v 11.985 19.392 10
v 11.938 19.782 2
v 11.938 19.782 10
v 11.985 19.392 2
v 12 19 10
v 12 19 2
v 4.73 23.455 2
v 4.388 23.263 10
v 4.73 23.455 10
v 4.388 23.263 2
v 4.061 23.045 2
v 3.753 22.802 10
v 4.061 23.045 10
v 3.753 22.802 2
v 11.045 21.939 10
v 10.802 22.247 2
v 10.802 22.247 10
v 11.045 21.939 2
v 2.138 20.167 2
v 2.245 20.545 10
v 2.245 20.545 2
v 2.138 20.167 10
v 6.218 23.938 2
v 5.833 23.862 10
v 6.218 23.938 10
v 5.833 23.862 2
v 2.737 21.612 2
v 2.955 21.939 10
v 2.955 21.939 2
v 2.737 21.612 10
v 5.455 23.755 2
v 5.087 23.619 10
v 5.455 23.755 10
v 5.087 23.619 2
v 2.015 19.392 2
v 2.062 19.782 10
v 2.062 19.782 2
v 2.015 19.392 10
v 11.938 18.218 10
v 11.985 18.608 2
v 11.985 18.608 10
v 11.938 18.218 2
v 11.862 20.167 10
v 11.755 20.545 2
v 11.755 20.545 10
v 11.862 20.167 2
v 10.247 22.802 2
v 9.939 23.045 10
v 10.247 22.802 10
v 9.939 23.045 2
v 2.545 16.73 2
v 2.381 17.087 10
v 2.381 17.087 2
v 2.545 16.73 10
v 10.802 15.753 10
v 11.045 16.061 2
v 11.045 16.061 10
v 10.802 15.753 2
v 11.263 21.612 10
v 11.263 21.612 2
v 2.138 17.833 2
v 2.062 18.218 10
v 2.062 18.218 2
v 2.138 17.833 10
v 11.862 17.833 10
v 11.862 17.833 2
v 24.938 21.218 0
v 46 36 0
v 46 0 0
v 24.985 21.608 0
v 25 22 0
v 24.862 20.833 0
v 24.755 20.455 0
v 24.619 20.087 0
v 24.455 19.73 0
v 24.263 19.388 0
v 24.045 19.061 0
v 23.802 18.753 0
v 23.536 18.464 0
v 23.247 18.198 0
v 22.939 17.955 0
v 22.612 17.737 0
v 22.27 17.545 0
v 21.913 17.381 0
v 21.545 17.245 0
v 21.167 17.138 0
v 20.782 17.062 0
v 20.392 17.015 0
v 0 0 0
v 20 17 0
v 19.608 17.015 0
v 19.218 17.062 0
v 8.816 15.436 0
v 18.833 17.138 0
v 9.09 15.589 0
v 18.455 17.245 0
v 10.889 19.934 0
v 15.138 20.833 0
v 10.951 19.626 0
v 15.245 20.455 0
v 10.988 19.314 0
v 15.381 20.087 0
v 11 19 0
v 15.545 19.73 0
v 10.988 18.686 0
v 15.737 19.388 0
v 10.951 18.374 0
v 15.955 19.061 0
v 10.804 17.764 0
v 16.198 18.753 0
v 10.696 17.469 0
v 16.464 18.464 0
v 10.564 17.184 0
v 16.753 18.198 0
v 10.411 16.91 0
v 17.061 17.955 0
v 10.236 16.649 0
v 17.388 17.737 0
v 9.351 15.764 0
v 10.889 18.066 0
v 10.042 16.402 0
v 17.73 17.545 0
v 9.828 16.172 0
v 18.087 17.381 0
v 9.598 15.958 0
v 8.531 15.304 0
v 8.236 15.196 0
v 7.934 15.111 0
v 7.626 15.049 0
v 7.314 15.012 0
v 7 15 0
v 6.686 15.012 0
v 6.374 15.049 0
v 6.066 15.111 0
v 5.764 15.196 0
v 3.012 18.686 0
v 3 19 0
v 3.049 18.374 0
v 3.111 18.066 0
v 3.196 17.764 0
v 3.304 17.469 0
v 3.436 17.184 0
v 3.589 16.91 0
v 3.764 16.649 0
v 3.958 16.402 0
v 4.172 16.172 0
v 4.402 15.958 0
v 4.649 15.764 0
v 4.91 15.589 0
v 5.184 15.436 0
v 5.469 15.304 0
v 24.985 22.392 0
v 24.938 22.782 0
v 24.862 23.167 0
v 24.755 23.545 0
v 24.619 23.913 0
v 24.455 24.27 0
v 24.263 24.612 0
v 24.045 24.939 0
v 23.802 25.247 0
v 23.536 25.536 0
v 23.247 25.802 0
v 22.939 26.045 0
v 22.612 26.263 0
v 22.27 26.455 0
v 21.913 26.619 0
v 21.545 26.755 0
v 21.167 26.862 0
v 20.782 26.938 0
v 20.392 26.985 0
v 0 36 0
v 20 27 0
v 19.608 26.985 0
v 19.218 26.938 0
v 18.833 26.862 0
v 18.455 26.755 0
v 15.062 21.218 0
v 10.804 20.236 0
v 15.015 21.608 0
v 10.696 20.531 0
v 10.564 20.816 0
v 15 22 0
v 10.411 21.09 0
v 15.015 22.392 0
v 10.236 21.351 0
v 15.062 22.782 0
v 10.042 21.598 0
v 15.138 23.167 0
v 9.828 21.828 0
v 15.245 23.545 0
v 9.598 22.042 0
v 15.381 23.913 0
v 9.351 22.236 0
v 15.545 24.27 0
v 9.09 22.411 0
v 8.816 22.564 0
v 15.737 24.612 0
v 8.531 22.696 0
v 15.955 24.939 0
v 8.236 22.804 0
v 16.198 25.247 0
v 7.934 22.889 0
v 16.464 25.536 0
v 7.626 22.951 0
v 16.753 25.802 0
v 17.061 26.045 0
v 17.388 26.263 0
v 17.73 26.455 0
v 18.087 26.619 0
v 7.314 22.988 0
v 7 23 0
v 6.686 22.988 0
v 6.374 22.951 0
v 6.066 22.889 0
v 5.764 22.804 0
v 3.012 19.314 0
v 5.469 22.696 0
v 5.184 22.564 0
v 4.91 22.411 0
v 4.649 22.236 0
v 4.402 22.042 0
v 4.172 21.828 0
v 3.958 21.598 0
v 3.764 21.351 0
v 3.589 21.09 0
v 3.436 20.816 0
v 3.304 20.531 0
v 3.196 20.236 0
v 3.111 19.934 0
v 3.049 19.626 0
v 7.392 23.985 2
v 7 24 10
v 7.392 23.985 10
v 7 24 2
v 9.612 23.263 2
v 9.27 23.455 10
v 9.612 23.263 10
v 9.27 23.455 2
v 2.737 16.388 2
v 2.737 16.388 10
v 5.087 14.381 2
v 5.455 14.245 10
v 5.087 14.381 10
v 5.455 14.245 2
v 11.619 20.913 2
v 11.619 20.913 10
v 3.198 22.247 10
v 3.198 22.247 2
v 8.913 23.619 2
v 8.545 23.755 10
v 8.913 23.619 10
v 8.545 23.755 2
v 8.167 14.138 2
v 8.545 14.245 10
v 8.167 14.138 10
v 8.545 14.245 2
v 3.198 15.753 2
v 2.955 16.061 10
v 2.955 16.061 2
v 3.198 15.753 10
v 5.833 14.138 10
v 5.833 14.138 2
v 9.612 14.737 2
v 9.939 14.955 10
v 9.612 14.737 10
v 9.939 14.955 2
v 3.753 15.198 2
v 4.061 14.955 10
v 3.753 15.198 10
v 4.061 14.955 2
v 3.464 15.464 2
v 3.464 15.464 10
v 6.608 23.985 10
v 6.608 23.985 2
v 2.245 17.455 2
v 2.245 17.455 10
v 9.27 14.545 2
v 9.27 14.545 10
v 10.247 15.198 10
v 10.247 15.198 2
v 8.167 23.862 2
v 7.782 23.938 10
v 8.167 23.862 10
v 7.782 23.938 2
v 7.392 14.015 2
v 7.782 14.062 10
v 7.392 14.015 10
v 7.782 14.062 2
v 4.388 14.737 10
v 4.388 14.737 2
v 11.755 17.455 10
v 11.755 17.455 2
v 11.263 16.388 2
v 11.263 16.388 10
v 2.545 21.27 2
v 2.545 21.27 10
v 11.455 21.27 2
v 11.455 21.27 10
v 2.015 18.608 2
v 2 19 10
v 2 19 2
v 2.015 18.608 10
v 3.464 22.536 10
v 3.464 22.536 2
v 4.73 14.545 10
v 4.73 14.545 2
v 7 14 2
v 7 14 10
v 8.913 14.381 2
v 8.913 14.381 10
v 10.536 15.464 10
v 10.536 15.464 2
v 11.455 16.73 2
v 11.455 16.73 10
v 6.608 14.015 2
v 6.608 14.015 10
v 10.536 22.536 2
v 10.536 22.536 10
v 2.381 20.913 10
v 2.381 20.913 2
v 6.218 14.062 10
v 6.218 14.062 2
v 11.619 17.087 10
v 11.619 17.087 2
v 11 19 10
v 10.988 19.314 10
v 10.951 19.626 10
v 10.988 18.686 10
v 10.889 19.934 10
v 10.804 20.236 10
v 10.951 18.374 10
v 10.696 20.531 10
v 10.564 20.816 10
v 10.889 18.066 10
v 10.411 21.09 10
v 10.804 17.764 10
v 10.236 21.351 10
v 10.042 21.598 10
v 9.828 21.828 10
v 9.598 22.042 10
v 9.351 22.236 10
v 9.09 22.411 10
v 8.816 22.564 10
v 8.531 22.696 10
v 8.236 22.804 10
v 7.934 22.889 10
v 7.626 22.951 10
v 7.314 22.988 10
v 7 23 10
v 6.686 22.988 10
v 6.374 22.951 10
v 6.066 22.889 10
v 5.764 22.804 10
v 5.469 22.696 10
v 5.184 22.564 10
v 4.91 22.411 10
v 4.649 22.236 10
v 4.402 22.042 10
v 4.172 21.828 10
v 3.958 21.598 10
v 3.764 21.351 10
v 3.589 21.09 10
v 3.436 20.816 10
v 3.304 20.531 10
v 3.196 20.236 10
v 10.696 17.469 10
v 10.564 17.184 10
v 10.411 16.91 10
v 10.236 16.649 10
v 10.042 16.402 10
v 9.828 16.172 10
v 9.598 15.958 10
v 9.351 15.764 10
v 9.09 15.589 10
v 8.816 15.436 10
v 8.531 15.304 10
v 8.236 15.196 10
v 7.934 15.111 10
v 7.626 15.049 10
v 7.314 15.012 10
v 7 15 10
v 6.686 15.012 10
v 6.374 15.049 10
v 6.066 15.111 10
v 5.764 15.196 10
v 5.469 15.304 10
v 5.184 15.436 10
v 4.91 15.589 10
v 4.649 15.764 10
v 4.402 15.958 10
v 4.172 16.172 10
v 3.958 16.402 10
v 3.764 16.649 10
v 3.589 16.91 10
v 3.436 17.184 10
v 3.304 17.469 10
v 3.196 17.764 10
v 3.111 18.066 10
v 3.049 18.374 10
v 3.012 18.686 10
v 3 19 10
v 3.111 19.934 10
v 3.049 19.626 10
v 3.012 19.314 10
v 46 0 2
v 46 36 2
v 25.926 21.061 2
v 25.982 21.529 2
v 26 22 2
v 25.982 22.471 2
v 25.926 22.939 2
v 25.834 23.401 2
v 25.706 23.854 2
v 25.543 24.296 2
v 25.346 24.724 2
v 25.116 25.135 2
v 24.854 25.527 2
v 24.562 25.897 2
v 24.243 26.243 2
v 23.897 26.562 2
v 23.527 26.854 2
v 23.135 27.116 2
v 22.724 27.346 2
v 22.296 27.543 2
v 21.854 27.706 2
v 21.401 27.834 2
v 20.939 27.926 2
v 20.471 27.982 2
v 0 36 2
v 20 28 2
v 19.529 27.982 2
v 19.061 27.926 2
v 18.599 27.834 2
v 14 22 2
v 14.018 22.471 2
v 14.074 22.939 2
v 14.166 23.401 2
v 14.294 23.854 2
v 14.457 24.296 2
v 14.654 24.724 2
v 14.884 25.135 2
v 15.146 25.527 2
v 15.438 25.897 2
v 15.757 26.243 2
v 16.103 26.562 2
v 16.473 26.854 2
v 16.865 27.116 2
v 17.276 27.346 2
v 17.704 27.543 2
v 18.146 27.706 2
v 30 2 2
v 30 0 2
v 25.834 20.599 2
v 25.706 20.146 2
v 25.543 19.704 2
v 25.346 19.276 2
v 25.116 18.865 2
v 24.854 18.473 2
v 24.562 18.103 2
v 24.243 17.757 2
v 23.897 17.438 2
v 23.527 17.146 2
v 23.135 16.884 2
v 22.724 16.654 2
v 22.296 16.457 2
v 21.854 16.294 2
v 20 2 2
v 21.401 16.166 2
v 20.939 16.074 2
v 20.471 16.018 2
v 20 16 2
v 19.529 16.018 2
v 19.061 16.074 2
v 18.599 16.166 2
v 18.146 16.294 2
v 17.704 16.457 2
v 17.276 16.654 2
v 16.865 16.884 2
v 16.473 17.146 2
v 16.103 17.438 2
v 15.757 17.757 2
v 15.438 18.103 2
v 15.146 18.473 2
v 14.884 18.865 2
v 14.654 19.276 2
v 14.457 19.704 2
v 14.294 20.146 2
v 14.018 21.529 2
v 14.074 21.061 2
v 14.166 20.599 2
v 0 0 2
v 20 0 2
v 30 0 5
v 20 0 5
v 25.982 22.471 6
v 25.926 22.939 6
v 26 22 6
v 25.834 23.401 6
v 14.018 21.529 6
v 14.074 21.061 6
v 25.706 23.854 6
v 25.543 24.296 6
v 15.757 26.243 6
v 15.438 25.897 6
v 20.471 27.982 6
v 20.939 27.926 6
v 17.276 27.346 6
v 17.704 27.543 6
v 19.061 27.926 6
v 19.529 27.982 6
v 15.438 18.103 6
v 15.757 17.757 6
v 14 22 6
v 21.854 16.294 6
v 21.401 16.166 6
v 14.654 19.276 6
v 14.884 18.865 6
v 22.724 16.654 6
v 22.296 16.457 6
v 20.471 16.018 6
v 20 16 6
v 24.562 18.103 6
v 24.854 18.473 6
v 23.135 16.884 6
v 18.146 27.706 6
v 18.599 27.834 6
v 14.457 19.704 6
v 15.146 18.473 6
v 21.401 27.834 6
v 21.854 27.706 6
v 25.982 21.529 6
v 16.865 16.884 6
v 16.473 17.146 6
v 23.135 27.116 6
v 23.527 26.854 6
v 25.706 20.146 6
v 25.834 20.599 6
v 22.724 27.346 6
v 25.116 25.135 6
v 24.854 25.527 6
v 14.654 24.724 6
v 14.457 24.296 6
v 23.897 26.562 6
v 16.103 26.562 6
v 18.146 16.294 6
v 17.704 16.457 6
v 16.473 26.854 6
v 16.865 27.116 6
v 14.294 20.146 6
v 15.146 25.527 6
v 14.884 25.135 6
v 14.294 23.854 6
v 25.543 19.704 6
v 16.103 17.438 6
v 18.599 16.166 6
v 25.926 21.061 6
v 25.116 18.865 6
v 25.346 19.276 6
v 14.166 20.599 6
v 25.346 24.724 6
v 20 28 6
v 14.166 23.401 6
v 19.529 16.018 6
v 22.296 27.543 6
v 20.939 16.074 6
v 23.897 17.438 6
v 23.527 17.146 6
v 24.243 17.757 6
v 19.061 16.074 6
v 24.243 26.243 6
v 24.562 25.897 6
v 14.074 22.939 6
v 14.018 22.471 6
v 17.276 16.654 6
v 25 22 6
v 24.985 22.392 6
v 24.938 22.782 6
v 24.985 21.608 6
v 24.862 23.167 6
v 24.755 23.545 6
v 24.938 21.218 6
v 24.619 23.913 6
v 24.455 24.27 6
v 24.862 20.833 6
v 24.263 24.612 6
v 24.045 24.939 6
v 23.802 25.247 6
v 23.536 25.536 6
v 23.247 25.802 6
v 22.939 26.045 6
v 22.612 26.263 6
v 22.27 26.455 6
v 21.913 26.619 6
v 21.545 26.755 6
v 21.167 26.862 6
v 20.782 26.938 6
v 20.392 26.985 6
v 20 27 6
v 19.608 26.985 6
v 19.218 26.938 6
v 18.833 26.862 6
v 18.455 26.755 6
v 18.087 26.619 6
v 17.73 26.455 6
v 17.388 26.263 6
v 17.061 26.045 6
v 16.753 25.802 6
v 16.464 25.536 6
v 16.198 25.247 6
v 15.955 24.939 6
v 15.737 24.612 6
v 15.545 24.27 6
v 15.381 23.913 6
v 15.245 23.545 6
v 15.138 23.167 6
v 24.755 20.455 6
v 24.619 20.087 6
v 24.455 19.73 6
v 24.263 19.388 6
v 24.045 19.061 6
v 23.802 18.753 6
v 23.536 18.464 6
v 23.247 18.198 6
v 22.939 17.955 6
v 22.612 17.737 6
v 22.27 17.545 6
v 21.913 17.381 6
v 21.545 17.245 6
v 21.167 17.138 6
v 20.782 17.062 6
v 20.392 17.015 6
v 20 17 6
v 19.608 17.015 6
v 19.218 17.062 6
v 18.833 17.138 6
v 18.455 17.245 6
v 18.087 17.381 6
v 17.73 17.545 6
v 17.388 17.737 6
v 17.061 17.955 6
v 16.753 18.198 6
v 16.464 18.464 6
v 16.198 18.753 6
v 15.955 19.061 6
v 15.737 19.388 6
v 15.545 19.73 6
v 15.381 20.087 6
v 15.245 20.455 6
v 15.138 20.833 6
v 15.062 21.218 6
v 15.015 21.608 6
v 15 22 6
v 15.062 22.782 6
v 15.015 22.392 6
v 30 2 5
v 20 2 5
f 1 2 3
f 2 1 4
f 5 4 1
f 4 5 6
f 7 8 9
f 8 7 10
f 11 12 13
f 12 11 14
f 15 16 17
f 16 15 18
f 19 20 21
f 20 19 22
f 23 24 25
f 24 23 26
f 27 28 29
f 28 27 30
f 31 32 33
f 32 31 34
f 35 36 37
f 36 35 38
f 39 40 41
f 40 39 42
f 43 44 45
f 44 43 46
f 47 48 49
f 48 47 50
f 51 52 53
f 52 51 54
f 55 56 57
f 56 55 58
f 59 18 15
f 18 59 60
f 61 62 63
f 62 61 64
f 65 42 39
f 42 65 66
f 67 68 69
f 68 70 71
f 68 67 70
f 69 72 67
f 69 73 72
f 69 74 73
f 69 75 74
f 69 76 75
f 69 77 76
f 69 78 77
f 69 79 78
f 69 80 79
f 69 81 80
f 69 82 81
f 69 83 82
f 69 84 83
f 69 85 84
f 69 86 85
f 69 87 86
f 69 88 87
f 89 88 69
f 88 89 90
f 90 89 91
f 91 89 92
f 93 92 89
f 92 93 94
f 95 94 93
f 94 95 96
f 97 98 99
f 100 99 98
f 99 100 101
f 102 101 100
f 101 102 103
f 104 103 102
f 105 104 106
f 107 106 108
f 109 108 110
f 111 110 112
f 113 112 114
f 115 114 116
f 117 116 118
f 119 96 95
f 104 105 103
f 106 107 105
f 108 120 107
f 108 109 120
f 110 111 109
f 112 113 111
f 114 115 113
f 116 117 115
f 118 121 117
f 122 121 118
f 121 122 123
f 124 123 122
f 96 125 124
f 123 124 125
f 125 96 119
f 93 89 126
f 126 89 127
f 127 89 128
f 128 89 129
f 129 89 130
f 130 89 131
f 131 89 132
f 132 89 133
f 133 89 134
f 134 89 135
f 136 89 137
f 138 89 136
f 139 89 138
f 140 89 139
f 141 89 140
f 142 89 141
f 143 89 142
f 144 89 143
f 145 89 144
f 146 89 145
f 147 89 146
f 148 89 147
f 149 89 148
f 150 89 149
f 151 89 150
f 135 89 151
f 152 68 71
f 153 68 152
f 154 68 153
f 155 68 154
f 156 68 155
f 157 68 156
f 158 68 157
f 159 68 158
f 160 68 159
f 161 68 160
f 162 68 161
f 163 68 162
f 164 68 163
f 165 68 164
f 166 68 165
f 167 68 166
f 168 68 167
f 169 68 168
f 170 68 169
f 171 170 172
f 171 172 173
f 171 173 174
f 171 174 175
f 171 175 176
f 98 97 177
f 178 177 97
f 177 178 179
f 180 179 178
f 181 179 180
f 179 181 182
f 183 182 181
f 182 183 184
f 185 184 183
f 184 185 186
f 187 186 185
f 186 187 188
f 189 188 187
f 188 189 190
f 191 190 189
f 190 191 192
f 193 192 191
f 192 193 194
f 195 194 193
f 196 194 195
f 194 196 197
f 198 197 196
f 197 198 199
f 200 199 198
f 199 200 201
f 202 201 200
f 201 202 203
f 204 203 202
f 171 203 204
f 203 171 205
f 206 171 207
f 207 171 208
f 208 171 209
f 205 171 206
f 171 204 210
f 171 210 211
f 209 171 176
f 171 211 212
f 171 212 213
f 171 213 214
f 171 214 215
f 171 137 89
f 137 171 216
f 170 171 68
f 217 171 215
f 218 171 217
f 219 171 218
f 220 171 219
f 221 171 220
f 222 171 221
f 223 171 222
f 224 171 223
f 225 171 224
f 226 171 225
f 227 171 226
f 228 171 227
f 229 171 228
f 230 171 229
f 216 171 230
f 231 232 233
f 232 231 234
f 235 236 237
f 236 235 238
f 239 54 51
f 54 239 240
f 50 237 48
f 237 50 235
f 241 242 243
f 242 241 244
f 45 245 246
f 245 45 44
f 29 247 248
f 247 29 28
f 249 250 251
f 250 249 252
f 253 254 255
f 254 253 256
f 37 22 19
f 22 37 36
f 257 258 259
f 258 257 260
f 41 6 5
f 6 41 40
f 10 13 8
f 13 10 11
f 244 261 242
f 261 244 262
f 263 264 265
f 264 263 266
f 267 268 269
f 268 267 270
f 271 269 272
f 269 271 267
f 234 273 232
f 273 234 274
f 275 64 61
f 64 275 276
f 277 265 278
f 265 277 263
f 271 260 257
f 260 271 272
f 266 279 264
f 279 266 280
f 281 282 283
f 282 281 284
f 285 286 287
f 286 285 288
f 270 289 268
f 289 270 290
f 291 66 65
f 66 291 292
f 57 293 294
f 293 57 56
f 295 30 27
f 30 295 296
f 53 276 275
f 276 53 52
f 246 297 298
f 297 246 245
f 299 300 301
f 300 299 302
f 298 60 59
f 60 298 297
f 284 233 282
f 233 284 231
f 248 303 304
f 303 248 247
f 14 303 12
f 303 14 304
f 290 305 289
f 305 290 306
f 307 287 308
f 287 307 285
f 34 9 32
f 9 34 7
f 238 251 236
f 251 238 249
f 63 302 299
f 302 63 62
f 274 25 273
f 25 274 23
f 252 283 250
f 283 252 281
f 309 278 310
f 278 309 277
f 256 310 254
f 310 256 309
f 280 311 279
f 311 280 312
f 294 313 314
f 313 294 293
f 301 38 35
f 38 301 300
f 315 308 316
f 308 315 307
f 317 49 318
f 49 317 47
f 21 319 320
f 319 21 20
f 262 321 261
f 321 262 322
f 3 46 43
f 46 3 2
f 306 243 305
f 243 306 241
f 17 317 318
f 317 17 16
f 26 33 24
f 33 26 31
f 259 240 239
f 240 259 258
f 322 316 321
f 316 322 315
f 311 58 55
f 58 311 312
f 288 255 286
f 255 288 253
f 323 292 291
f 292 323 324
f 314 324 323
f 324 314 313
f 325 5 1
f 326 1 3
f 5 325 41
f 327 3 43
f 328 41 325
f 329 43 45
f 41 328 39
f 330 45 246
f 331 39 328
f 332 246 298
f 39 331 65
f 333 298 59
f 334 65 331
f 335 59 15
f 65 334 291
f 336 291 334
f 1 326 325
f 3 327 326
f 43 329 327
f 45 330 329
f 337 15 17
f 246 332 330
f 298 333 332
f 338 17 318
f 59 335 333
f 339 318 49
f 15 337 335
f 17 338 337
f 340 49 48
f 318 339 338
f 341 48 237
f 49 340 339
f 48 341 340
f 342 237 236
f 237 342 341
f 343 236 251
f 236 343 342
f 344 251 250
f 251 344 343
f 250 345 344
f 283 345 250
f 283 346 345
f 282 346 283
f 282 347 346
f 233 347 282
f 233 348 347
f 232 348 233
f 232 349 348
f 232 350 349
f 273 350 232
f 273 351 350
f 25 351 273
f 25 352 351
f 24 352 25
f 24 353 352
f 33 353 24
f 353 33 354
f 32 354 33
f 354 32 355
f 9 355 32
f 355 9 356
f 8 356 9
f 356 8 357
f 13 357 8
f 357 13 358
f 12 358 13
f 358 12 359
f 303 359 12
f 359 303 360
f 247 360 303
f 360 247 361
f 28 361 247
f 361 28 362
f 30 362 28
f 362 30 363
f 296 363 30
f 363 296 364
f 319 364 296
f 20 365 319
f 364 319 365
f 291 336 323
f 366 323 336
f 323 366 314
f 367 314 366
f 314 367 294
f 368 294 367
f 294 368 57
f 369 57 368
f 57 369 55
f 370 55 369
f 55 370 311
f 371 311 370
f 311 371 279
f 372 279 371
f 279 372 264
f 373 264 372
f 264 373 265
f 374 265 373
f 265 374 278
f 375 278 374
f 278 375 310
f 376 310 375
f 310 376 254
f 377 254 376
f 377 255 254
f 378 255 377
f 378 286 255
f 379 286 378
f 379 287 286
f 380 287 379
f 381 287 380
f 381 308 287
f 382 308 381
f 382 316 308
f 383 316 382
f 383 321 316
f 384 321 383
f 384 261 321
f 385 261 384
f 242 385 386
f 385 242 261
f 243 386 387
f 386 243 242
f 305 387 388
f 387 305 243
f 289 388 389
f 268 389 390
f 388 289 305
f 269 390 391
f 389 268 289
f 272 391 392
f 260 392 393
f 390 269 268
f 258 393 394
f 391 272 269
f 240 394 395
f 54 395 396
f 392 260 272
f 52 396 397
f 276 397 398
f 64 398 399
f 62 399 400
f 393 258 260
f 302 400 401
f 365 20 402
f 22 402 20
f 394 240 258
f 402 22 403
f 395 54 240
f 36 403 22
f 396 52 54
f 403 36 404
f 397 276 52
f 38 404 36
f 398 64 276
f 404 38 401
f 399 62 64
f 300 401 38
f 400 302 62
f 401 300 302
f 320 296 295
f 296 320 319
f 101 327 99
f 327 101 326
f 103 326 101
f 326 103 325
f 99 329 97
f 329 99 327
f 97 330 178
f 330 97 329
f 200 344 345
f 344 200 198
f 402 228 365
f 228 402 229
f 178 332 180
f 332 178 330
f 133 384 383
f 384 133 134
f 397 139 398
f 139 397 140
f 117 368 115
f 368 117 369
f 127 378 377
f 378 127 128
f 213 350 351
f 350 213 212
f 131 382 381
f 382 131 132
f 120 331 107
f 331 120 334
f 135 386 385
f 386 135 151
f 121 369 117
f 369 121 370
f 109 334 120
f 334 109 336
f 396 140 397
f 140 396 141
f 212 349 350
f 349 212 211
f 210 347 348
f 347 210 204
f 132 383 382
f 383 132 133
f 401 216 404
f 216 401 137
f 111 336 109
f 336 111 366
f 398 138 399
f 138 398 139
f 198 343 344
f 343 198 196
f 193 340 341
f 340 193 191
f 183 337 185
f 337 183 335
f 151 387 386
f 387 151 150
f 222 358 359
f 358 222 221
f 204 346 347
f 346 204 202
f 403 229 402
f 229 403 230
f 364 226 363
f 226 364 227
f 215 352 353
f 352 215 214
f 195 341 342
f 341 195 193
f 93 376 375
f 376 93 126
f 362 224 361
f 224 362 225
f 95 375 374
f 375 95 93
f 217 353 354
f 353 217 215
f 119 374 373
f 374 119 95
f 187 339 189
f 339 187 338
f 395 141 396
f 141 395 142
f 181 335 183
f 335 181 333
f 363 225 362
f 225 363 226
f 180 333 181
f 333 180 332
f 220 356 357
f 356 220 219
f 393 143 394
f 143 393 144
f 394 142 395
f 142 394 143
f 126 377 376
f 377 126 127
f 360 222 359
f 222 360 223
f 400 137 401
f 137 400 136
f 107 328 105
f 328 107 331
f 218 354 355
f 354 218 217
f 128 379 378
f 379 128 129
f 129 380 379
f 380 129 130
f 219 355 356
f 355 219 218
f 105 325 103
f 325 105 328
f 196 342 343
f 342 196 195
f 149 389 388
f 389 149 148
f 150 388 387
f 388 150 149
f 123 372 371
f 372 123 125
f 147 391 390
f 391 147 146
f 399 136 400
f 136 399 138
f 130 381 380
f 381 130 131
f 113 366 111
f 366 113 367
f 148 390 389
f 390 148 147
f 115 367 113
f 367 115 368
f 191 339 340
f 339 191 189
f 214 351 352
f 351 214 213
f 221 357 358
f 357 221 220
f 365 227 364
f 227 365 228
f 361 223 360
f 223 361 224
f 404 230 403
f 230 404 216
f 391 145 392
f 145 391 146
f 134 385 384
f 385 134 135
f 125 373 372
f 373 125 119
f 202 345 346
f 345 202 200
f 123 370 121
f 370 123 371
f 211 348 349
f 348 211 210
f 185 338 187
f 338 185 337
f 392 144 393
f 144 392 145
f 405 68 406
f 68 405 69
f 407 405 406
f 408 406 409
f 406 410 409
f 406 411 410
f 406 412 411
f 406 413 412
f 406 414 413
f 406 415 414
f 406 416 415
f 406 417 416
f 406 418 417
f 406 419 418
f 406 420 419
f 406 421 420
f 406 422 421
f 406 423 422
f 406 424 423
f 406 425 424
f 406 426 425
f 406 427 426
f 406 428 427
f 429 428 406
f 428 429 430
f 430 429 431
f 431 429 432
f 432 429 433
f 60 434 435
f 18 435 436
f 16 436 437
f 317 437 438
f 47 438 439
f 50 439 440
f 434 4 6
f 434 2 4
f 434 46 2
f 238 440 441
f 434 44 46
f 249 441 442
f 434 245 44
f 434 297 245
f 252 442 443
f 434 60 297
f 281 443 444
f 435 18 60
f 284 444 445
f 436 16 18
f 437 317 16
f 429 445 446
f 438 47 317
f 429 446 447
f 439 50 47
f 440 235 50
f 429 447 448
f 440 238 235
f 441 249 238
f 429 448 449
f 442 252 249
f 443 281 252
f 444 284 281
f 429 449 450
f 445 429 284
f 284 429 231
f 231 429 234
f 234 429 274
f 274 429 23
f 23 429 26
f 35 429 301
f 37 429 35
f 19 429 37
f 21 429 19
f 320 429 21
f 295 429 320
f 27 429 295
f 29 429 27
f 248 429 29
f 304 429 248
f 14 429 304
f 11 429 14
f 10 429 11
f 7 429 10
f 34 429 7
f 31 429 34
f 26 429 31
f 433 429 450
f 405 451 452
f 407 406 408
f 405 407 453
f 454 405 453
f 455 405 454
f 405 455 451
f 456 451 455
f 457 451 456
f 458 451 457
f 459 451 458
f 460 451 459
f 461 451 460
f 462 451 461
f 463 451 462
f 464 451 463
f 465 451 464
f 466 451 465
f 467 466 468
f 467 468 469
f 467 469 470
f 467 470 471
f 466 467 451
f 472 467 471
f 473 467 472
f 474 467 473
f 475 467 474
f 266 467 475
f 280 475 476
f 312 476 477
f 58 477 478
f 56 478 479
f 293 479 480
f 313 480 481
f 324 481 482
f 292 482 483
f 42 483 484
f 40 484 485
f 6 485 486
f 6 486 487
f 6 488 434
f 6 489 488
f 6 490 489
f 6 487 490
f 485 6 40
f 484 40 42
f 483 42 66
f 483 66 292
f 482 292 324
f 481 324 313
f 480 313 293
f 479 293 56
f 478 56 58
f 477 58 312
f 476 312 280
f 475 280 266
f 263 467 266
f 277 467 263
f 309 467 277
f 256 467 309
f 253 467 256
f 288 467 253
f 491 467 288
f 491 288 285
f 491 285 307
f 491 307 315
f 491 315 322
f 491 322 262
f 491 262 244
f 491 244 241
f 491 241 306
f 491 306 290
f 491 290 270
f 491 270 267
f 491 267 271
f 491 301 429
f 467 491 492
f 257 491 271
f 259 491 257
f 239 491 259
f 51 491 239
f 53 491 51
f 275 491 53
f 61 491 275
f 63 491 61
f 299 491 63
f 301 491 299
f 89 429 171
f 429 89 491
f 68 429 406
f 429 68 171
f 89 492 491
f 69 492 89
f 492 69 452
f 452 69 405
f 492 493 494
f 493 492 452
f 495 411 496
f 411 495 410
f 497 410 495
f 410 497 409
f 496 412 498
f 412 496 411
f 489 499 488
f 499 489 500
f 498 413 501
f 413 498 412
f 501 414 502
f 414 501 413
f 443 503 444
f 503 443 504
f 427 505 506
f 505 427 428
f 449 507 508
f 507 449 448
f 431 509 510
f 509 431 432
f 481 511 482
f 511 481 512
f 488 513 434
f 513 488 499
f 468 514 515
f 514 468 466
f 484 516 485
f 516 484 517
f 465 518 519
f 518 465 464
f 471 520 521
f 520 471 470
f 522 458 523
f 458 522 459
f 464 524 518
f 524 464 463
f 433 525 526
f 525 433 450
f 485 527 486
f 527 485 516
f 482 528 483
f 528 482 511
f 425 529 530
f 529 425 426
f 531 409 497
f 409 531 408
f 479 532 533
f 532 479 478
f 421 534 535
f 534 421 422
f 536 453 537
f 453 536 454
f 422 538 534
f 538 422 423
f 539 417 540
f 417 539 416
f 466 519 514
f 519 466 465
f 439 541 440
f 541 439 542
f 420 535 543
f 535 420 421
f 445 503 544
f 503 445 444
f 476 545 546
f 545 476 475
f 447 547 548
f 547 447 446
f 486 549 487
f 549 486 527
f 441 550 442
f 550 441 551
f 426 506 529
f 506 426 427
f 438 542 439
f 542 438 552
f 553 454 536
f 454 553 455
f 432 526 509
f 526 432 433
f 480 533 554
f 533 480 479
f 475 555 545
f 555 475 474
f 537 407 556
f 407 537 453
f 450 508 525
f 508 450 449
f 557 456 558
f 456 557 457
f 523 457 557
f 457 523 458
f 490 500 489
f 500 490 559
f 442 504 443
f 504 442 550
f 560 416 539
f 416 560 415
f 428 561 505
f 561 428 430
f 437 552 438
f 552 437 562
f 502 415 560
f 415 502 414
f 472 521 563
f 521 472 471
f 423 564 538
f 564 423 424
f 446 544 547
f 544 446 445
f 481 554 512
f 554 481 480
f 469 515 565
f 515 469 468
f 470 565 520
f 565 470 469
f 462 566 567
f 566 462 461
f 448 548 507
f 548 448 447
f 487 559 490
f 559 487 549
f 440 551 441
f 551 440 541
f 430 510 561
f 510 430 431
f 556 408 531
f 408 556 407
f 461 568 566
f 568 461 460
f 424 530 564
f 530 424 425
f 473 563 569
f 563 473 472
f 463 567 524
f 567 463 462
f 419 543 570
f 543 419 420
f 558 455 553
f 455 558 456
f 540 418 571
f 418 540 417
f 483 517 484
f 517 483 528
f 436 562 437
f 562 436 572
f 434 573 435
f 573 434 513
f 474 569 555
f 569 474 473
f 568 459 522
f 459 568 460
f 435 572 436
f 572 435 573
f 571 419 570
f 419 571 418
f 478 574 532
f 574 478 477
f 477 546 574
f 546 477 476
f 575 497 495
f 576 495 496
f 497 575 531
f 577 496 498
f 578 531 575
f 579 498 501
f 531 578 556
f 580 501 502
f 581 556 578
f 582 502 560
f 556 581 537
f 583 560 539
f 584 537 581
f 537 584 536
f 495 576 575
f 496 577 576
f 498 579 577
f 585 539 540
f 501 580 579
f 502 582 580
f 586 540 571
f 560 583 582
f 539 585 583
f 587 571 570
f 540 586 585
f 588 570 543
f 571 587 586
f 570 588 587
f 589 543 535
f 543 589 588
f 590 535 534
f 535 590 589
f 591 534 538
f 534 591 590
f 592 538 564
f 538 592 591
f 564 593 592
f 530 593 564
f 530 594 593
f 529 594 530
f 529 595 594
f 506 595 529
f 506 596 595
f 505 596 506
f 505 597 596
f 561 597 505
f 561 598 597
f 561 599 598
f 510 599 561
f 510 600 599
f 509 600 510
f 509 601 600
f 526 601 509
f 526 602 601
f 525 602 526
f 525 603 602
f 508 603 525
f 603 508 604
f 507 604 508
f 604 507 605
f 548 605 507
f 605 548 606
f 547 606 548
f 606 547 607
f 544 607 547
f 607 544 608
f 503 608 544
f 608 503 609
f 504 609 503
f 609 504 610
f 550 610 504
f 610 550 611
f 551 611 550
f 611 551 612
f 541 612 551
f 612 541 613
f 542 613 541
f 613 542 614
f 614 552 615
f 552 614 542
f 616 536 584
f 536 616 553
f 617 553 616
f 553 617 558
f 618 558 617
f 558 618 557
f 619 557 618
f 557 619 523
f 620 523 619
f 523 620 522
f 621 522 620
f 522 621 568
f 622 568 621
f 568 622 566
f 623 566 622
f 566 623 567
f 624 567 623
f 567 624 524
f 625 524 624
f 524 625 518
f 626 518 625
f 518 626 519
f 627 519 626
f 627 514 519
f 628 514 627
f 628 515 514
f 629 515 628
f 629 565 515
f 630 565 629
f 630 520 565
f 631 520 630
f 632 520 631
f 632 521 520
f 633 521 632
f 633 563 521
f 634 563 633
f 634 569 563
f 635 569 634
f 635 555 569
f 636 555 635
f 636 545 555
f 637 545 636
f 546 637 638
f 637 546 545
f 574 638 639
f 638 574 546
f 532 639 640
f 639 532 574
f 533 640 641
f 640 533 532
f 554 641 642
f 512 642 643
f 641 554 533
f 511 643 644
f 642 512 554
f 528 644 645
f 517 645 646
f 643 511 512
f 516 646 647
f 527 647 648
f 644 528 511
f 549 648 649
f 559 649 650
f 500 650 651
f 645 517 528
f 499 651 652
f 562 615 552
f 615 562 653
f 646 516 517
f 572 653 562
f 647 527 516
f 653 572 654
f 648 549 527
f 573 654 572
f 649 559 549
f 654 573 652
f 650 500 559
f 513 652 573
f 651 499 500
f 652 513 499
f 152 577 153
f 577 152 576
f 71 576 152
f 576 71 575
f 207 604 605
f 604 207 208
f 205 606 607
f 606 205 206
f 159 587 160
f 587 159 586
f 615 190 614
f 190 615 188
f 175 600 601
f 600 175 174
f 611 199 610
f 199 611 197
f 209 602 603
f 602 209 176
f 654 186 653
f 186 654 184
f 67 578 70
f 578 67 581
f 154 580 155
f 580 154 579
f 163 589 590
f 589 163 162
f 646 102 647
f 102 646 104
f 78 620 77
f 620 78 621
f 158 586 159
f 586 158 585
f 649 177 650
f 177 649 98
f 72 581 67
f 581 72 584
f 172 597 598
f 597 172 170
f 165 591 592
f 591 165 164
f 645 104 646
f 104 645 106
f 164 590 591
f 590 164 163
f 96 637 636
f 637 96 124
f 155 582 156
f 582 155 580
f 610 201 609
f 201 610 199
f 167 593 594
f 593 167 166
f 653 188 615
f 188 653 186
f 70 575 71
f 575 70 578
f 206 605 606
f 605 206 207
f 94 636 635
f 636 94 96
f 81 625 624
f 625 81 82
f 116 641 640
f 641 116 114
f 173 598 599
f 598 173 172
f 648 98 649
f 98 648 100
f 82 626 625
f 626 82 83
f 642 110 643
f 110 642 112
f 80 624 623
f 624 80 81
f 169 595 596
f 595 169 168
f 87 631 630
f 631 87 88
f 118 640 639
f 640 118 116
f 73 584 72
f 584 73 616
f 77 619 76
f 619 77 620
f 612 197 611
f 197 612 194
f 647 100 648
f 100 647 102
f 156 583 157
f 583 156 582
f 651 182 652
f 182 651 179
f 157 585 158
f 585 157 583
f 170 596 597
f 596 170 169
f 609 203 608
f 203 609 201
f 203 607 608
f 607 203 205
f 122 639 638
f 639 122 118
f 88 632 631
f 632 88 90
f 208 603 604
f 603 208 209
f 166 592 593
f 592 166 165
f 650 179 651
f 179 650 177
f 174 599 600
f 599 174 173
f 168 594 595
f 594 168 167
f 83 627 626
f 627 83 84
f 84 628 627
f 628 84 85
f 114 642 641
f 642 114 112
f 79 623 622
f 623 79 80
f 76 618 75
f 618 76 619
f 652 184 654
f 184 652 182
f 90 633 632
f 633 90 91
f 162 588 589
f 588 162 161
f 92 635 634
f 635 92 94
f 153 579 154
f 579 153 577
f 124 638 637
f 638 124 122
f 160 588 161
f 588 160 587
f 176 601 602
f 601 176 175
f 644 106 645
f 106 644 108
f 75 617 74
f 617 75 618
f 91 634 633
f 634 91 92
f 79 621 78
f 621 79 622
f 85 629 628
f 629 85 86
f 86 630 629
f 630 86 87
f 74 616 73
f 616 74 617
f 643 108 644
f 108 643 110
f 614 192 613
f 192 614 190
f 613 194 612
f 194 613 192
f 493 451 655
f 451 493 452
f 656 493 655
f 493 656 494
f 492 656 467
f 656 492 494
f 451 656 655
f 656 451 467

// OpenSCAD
// ==============================
// Global parameters
// ==============================

// Wall / floor dimensions
wall_depth     = 2;    // Thickness of surrounding walls
floor_depth    = 2;    // Thickness of base plate
wall_height    = 13;   // Height of walls (currently unused but kept)

// Inner usable area (before walls)
inner_width    = 42;
inner_height   = 32;

// Computed outer dimensions
floor_width    = inner_width  + 2 * wall_depth;
floor_height   = inner_height + 2 * wall_depth;

// Hole parameters
hole_r         = 5;    // Base radius of main hole
hole_fn        = 80;   // Cylinder resolution

// ==============================
// Small top wall feature
// ==============================

top_wall_offset_x = floor_width - 26;
top_wall_width    = 10;
top_wall_height   = 3;

translate([top_wall_offset_x, 0, floor_depth])
    cube([top_wall_width, wall_depth, top_wall_height]);

// ==============================
// Bottom-left hole positioning
// ==============================

bottom_left_x_offset = wall_depth + hole_r;
bottom_left_y_offset = wall_depth + 12 + hole_r;

// Offset for second hole
second_hole_dx = 13;
second_hole_dy = 3;

// ==============================
// Floor plate with holes
// ==============================

difference() {
    // Base plate
    cube([floor_width, floor_height, floor_depth]);

    // Main bottom-left hole
    translate([bottom_left_x_offset, bottom_left_y_offset, 0])
        cylinder(h=floor_depth, r=hole_r, $fn=hole_fn);

    // Secondary hole (slightly larger radius)
    translate([
        bottom_left_x_offset + second_hole_dx,
        bottom_left_y_offset + second_hole_dy,
        0
    ])
        cylinder(h=floor_depth, r=hole_r + 1, $fn=hole_fn);
}

// ==============================
// Vertical sleeve for main hole
// ==============================

main_sleeve_height   = 10;
main_sleeve_thickness = 1;

difference() {
    translate([bottom_left_x_offset, bottom_left_y_offset, 0])
        cylinder(h=main_sleeve_height, r=hole_r, $fn=hole_fn);

    translate([bottom_left_x_offset, bottom_left_y_offset, 0])
        cylinder(h=main_sleeve_height, r=hole_r - main_sleeve_thickness, $fn=hole_fn);
}

// ==============================
// Vertical sleeve for secondary hole
// ==============================

secondary_sleeve_height    = 6;
secondary_sleeve_thickness = 1;

difference() {
    translate([
        bottom_left_x_offset + second_hole_dx,
        bottom_left_y_offset + second_hole_dy,
        0
    ])
        cylinder(h=secondary_sleeve_height, r=hole_r + 1, $fn=hole_fn);

    translate([
        bottom_left_x_offset + second_hole_dx,
        bottom_left_y_offset + second_hole_dy,
        0
    ])
        cylinder(h=secondary_sleeve_height, r=hole_r, $fn=hole_fn);
}
